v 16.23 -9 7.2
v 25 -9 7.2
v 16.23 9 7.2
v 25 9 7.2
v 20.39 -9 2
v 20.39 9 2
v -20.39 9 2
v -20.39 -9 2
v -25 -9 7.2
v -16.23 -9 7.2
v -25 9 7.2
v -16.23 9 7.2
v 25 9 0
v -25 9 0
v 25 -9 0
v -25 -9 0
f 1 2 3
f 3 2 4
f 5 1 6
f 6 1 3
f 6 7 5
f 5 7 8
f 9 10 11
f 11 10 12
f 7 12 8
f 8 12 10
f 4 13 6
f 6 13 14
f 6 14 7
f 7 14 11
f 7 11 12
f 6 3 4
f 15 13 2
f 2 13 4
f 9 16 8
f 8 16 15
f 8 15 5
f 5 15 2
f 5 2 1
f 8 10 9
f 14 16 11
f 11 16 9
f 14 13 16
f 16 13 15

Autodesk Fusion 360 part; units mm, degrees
ref_plane "工作平面1" through (0, 0, 0) normal (0, 0, 1) x (1, 0, 0)
sketch "草图1" plane through (0, 0, 0) normal (0, 0, 1) x (1, 0, 0)
  line L0 (-25, -9) -> (25, -9)
  line L1 (25, -9) -> (25, 9)
  line L2 (25, 9) -> (-25, 9)
  line L3 (-25, 9) -> (-25, -9)
extrude "Coupon base" add sketch "草图1" along normal blind 2
ref_plane "工作平面2" through (0, 0, 2) normal (0, 0, 1) x (1, 0, 0)
sketch "草图2" plane through (0, 0, 2) normal (0, 0, 1) x (1, 0, 0)
  line L0 (-25, -9) -> (-20.39, -9)
  line L1 (-20.39, -9) -> (-20.39, 9)
  line L2 (-20.39, 9) -> (-25, 9)
  line L3 (-25, 9) -> (-25, -9)
ref_plane "工作平面3" through (0, 0, 7.2) normal (0, 0, 1) x (1, 0, 0)
sketch "草图3" plane through (0, 0, 7.2) normal (0, 0, 1) x (1, 0, 0)
  line L0 (-25, -9) -> (-16.23, -9)
  line L1 (-16.23, -9) -> (-16.23, 9)
  line L2 (-16.23, 9) -> (-25, 9)
  line L3 (-25, 9) -> (-25, -9)
loft "Coupon dovetail rail" add profiles "草图2", "草图3" section 1 section 2
ref_plane "工作平面4" through (0, 0, 2) normal (0, 0, 1) x (1, 0, 0)
sketch "草图4" plane through (0, 0, 2) normal (0, 0, 1) x (1, 0, 0)
  line L0 (20.39, -9) -> (25, -9)
  line L1 (25, -9) -> (25, 9)
  line L2 (25, 9) -> (20.39, 9)
  line L3 (20.39, 9) -> (20.39, -9)
ref_plane "工作平面5" through (0, 0, 7.2) normal (0, 0, 1) x (1, 0, 0)
sketch "草图5" plane through (0, 0, 7.2) normal (0, 0, 1) x (1, 0, 0)
  line L0 (16.23, -9) -> (25, -9)
  line L1 (25, -9) -> (25, 9)
  line L2 (25, 9) -> (16.23, 9)
  line L3 (16.23, 9) -> (16.23, -9)
loft "Coupon dovetail rail (1)" add profiles "草图4", "草图5" section 1 section 2
